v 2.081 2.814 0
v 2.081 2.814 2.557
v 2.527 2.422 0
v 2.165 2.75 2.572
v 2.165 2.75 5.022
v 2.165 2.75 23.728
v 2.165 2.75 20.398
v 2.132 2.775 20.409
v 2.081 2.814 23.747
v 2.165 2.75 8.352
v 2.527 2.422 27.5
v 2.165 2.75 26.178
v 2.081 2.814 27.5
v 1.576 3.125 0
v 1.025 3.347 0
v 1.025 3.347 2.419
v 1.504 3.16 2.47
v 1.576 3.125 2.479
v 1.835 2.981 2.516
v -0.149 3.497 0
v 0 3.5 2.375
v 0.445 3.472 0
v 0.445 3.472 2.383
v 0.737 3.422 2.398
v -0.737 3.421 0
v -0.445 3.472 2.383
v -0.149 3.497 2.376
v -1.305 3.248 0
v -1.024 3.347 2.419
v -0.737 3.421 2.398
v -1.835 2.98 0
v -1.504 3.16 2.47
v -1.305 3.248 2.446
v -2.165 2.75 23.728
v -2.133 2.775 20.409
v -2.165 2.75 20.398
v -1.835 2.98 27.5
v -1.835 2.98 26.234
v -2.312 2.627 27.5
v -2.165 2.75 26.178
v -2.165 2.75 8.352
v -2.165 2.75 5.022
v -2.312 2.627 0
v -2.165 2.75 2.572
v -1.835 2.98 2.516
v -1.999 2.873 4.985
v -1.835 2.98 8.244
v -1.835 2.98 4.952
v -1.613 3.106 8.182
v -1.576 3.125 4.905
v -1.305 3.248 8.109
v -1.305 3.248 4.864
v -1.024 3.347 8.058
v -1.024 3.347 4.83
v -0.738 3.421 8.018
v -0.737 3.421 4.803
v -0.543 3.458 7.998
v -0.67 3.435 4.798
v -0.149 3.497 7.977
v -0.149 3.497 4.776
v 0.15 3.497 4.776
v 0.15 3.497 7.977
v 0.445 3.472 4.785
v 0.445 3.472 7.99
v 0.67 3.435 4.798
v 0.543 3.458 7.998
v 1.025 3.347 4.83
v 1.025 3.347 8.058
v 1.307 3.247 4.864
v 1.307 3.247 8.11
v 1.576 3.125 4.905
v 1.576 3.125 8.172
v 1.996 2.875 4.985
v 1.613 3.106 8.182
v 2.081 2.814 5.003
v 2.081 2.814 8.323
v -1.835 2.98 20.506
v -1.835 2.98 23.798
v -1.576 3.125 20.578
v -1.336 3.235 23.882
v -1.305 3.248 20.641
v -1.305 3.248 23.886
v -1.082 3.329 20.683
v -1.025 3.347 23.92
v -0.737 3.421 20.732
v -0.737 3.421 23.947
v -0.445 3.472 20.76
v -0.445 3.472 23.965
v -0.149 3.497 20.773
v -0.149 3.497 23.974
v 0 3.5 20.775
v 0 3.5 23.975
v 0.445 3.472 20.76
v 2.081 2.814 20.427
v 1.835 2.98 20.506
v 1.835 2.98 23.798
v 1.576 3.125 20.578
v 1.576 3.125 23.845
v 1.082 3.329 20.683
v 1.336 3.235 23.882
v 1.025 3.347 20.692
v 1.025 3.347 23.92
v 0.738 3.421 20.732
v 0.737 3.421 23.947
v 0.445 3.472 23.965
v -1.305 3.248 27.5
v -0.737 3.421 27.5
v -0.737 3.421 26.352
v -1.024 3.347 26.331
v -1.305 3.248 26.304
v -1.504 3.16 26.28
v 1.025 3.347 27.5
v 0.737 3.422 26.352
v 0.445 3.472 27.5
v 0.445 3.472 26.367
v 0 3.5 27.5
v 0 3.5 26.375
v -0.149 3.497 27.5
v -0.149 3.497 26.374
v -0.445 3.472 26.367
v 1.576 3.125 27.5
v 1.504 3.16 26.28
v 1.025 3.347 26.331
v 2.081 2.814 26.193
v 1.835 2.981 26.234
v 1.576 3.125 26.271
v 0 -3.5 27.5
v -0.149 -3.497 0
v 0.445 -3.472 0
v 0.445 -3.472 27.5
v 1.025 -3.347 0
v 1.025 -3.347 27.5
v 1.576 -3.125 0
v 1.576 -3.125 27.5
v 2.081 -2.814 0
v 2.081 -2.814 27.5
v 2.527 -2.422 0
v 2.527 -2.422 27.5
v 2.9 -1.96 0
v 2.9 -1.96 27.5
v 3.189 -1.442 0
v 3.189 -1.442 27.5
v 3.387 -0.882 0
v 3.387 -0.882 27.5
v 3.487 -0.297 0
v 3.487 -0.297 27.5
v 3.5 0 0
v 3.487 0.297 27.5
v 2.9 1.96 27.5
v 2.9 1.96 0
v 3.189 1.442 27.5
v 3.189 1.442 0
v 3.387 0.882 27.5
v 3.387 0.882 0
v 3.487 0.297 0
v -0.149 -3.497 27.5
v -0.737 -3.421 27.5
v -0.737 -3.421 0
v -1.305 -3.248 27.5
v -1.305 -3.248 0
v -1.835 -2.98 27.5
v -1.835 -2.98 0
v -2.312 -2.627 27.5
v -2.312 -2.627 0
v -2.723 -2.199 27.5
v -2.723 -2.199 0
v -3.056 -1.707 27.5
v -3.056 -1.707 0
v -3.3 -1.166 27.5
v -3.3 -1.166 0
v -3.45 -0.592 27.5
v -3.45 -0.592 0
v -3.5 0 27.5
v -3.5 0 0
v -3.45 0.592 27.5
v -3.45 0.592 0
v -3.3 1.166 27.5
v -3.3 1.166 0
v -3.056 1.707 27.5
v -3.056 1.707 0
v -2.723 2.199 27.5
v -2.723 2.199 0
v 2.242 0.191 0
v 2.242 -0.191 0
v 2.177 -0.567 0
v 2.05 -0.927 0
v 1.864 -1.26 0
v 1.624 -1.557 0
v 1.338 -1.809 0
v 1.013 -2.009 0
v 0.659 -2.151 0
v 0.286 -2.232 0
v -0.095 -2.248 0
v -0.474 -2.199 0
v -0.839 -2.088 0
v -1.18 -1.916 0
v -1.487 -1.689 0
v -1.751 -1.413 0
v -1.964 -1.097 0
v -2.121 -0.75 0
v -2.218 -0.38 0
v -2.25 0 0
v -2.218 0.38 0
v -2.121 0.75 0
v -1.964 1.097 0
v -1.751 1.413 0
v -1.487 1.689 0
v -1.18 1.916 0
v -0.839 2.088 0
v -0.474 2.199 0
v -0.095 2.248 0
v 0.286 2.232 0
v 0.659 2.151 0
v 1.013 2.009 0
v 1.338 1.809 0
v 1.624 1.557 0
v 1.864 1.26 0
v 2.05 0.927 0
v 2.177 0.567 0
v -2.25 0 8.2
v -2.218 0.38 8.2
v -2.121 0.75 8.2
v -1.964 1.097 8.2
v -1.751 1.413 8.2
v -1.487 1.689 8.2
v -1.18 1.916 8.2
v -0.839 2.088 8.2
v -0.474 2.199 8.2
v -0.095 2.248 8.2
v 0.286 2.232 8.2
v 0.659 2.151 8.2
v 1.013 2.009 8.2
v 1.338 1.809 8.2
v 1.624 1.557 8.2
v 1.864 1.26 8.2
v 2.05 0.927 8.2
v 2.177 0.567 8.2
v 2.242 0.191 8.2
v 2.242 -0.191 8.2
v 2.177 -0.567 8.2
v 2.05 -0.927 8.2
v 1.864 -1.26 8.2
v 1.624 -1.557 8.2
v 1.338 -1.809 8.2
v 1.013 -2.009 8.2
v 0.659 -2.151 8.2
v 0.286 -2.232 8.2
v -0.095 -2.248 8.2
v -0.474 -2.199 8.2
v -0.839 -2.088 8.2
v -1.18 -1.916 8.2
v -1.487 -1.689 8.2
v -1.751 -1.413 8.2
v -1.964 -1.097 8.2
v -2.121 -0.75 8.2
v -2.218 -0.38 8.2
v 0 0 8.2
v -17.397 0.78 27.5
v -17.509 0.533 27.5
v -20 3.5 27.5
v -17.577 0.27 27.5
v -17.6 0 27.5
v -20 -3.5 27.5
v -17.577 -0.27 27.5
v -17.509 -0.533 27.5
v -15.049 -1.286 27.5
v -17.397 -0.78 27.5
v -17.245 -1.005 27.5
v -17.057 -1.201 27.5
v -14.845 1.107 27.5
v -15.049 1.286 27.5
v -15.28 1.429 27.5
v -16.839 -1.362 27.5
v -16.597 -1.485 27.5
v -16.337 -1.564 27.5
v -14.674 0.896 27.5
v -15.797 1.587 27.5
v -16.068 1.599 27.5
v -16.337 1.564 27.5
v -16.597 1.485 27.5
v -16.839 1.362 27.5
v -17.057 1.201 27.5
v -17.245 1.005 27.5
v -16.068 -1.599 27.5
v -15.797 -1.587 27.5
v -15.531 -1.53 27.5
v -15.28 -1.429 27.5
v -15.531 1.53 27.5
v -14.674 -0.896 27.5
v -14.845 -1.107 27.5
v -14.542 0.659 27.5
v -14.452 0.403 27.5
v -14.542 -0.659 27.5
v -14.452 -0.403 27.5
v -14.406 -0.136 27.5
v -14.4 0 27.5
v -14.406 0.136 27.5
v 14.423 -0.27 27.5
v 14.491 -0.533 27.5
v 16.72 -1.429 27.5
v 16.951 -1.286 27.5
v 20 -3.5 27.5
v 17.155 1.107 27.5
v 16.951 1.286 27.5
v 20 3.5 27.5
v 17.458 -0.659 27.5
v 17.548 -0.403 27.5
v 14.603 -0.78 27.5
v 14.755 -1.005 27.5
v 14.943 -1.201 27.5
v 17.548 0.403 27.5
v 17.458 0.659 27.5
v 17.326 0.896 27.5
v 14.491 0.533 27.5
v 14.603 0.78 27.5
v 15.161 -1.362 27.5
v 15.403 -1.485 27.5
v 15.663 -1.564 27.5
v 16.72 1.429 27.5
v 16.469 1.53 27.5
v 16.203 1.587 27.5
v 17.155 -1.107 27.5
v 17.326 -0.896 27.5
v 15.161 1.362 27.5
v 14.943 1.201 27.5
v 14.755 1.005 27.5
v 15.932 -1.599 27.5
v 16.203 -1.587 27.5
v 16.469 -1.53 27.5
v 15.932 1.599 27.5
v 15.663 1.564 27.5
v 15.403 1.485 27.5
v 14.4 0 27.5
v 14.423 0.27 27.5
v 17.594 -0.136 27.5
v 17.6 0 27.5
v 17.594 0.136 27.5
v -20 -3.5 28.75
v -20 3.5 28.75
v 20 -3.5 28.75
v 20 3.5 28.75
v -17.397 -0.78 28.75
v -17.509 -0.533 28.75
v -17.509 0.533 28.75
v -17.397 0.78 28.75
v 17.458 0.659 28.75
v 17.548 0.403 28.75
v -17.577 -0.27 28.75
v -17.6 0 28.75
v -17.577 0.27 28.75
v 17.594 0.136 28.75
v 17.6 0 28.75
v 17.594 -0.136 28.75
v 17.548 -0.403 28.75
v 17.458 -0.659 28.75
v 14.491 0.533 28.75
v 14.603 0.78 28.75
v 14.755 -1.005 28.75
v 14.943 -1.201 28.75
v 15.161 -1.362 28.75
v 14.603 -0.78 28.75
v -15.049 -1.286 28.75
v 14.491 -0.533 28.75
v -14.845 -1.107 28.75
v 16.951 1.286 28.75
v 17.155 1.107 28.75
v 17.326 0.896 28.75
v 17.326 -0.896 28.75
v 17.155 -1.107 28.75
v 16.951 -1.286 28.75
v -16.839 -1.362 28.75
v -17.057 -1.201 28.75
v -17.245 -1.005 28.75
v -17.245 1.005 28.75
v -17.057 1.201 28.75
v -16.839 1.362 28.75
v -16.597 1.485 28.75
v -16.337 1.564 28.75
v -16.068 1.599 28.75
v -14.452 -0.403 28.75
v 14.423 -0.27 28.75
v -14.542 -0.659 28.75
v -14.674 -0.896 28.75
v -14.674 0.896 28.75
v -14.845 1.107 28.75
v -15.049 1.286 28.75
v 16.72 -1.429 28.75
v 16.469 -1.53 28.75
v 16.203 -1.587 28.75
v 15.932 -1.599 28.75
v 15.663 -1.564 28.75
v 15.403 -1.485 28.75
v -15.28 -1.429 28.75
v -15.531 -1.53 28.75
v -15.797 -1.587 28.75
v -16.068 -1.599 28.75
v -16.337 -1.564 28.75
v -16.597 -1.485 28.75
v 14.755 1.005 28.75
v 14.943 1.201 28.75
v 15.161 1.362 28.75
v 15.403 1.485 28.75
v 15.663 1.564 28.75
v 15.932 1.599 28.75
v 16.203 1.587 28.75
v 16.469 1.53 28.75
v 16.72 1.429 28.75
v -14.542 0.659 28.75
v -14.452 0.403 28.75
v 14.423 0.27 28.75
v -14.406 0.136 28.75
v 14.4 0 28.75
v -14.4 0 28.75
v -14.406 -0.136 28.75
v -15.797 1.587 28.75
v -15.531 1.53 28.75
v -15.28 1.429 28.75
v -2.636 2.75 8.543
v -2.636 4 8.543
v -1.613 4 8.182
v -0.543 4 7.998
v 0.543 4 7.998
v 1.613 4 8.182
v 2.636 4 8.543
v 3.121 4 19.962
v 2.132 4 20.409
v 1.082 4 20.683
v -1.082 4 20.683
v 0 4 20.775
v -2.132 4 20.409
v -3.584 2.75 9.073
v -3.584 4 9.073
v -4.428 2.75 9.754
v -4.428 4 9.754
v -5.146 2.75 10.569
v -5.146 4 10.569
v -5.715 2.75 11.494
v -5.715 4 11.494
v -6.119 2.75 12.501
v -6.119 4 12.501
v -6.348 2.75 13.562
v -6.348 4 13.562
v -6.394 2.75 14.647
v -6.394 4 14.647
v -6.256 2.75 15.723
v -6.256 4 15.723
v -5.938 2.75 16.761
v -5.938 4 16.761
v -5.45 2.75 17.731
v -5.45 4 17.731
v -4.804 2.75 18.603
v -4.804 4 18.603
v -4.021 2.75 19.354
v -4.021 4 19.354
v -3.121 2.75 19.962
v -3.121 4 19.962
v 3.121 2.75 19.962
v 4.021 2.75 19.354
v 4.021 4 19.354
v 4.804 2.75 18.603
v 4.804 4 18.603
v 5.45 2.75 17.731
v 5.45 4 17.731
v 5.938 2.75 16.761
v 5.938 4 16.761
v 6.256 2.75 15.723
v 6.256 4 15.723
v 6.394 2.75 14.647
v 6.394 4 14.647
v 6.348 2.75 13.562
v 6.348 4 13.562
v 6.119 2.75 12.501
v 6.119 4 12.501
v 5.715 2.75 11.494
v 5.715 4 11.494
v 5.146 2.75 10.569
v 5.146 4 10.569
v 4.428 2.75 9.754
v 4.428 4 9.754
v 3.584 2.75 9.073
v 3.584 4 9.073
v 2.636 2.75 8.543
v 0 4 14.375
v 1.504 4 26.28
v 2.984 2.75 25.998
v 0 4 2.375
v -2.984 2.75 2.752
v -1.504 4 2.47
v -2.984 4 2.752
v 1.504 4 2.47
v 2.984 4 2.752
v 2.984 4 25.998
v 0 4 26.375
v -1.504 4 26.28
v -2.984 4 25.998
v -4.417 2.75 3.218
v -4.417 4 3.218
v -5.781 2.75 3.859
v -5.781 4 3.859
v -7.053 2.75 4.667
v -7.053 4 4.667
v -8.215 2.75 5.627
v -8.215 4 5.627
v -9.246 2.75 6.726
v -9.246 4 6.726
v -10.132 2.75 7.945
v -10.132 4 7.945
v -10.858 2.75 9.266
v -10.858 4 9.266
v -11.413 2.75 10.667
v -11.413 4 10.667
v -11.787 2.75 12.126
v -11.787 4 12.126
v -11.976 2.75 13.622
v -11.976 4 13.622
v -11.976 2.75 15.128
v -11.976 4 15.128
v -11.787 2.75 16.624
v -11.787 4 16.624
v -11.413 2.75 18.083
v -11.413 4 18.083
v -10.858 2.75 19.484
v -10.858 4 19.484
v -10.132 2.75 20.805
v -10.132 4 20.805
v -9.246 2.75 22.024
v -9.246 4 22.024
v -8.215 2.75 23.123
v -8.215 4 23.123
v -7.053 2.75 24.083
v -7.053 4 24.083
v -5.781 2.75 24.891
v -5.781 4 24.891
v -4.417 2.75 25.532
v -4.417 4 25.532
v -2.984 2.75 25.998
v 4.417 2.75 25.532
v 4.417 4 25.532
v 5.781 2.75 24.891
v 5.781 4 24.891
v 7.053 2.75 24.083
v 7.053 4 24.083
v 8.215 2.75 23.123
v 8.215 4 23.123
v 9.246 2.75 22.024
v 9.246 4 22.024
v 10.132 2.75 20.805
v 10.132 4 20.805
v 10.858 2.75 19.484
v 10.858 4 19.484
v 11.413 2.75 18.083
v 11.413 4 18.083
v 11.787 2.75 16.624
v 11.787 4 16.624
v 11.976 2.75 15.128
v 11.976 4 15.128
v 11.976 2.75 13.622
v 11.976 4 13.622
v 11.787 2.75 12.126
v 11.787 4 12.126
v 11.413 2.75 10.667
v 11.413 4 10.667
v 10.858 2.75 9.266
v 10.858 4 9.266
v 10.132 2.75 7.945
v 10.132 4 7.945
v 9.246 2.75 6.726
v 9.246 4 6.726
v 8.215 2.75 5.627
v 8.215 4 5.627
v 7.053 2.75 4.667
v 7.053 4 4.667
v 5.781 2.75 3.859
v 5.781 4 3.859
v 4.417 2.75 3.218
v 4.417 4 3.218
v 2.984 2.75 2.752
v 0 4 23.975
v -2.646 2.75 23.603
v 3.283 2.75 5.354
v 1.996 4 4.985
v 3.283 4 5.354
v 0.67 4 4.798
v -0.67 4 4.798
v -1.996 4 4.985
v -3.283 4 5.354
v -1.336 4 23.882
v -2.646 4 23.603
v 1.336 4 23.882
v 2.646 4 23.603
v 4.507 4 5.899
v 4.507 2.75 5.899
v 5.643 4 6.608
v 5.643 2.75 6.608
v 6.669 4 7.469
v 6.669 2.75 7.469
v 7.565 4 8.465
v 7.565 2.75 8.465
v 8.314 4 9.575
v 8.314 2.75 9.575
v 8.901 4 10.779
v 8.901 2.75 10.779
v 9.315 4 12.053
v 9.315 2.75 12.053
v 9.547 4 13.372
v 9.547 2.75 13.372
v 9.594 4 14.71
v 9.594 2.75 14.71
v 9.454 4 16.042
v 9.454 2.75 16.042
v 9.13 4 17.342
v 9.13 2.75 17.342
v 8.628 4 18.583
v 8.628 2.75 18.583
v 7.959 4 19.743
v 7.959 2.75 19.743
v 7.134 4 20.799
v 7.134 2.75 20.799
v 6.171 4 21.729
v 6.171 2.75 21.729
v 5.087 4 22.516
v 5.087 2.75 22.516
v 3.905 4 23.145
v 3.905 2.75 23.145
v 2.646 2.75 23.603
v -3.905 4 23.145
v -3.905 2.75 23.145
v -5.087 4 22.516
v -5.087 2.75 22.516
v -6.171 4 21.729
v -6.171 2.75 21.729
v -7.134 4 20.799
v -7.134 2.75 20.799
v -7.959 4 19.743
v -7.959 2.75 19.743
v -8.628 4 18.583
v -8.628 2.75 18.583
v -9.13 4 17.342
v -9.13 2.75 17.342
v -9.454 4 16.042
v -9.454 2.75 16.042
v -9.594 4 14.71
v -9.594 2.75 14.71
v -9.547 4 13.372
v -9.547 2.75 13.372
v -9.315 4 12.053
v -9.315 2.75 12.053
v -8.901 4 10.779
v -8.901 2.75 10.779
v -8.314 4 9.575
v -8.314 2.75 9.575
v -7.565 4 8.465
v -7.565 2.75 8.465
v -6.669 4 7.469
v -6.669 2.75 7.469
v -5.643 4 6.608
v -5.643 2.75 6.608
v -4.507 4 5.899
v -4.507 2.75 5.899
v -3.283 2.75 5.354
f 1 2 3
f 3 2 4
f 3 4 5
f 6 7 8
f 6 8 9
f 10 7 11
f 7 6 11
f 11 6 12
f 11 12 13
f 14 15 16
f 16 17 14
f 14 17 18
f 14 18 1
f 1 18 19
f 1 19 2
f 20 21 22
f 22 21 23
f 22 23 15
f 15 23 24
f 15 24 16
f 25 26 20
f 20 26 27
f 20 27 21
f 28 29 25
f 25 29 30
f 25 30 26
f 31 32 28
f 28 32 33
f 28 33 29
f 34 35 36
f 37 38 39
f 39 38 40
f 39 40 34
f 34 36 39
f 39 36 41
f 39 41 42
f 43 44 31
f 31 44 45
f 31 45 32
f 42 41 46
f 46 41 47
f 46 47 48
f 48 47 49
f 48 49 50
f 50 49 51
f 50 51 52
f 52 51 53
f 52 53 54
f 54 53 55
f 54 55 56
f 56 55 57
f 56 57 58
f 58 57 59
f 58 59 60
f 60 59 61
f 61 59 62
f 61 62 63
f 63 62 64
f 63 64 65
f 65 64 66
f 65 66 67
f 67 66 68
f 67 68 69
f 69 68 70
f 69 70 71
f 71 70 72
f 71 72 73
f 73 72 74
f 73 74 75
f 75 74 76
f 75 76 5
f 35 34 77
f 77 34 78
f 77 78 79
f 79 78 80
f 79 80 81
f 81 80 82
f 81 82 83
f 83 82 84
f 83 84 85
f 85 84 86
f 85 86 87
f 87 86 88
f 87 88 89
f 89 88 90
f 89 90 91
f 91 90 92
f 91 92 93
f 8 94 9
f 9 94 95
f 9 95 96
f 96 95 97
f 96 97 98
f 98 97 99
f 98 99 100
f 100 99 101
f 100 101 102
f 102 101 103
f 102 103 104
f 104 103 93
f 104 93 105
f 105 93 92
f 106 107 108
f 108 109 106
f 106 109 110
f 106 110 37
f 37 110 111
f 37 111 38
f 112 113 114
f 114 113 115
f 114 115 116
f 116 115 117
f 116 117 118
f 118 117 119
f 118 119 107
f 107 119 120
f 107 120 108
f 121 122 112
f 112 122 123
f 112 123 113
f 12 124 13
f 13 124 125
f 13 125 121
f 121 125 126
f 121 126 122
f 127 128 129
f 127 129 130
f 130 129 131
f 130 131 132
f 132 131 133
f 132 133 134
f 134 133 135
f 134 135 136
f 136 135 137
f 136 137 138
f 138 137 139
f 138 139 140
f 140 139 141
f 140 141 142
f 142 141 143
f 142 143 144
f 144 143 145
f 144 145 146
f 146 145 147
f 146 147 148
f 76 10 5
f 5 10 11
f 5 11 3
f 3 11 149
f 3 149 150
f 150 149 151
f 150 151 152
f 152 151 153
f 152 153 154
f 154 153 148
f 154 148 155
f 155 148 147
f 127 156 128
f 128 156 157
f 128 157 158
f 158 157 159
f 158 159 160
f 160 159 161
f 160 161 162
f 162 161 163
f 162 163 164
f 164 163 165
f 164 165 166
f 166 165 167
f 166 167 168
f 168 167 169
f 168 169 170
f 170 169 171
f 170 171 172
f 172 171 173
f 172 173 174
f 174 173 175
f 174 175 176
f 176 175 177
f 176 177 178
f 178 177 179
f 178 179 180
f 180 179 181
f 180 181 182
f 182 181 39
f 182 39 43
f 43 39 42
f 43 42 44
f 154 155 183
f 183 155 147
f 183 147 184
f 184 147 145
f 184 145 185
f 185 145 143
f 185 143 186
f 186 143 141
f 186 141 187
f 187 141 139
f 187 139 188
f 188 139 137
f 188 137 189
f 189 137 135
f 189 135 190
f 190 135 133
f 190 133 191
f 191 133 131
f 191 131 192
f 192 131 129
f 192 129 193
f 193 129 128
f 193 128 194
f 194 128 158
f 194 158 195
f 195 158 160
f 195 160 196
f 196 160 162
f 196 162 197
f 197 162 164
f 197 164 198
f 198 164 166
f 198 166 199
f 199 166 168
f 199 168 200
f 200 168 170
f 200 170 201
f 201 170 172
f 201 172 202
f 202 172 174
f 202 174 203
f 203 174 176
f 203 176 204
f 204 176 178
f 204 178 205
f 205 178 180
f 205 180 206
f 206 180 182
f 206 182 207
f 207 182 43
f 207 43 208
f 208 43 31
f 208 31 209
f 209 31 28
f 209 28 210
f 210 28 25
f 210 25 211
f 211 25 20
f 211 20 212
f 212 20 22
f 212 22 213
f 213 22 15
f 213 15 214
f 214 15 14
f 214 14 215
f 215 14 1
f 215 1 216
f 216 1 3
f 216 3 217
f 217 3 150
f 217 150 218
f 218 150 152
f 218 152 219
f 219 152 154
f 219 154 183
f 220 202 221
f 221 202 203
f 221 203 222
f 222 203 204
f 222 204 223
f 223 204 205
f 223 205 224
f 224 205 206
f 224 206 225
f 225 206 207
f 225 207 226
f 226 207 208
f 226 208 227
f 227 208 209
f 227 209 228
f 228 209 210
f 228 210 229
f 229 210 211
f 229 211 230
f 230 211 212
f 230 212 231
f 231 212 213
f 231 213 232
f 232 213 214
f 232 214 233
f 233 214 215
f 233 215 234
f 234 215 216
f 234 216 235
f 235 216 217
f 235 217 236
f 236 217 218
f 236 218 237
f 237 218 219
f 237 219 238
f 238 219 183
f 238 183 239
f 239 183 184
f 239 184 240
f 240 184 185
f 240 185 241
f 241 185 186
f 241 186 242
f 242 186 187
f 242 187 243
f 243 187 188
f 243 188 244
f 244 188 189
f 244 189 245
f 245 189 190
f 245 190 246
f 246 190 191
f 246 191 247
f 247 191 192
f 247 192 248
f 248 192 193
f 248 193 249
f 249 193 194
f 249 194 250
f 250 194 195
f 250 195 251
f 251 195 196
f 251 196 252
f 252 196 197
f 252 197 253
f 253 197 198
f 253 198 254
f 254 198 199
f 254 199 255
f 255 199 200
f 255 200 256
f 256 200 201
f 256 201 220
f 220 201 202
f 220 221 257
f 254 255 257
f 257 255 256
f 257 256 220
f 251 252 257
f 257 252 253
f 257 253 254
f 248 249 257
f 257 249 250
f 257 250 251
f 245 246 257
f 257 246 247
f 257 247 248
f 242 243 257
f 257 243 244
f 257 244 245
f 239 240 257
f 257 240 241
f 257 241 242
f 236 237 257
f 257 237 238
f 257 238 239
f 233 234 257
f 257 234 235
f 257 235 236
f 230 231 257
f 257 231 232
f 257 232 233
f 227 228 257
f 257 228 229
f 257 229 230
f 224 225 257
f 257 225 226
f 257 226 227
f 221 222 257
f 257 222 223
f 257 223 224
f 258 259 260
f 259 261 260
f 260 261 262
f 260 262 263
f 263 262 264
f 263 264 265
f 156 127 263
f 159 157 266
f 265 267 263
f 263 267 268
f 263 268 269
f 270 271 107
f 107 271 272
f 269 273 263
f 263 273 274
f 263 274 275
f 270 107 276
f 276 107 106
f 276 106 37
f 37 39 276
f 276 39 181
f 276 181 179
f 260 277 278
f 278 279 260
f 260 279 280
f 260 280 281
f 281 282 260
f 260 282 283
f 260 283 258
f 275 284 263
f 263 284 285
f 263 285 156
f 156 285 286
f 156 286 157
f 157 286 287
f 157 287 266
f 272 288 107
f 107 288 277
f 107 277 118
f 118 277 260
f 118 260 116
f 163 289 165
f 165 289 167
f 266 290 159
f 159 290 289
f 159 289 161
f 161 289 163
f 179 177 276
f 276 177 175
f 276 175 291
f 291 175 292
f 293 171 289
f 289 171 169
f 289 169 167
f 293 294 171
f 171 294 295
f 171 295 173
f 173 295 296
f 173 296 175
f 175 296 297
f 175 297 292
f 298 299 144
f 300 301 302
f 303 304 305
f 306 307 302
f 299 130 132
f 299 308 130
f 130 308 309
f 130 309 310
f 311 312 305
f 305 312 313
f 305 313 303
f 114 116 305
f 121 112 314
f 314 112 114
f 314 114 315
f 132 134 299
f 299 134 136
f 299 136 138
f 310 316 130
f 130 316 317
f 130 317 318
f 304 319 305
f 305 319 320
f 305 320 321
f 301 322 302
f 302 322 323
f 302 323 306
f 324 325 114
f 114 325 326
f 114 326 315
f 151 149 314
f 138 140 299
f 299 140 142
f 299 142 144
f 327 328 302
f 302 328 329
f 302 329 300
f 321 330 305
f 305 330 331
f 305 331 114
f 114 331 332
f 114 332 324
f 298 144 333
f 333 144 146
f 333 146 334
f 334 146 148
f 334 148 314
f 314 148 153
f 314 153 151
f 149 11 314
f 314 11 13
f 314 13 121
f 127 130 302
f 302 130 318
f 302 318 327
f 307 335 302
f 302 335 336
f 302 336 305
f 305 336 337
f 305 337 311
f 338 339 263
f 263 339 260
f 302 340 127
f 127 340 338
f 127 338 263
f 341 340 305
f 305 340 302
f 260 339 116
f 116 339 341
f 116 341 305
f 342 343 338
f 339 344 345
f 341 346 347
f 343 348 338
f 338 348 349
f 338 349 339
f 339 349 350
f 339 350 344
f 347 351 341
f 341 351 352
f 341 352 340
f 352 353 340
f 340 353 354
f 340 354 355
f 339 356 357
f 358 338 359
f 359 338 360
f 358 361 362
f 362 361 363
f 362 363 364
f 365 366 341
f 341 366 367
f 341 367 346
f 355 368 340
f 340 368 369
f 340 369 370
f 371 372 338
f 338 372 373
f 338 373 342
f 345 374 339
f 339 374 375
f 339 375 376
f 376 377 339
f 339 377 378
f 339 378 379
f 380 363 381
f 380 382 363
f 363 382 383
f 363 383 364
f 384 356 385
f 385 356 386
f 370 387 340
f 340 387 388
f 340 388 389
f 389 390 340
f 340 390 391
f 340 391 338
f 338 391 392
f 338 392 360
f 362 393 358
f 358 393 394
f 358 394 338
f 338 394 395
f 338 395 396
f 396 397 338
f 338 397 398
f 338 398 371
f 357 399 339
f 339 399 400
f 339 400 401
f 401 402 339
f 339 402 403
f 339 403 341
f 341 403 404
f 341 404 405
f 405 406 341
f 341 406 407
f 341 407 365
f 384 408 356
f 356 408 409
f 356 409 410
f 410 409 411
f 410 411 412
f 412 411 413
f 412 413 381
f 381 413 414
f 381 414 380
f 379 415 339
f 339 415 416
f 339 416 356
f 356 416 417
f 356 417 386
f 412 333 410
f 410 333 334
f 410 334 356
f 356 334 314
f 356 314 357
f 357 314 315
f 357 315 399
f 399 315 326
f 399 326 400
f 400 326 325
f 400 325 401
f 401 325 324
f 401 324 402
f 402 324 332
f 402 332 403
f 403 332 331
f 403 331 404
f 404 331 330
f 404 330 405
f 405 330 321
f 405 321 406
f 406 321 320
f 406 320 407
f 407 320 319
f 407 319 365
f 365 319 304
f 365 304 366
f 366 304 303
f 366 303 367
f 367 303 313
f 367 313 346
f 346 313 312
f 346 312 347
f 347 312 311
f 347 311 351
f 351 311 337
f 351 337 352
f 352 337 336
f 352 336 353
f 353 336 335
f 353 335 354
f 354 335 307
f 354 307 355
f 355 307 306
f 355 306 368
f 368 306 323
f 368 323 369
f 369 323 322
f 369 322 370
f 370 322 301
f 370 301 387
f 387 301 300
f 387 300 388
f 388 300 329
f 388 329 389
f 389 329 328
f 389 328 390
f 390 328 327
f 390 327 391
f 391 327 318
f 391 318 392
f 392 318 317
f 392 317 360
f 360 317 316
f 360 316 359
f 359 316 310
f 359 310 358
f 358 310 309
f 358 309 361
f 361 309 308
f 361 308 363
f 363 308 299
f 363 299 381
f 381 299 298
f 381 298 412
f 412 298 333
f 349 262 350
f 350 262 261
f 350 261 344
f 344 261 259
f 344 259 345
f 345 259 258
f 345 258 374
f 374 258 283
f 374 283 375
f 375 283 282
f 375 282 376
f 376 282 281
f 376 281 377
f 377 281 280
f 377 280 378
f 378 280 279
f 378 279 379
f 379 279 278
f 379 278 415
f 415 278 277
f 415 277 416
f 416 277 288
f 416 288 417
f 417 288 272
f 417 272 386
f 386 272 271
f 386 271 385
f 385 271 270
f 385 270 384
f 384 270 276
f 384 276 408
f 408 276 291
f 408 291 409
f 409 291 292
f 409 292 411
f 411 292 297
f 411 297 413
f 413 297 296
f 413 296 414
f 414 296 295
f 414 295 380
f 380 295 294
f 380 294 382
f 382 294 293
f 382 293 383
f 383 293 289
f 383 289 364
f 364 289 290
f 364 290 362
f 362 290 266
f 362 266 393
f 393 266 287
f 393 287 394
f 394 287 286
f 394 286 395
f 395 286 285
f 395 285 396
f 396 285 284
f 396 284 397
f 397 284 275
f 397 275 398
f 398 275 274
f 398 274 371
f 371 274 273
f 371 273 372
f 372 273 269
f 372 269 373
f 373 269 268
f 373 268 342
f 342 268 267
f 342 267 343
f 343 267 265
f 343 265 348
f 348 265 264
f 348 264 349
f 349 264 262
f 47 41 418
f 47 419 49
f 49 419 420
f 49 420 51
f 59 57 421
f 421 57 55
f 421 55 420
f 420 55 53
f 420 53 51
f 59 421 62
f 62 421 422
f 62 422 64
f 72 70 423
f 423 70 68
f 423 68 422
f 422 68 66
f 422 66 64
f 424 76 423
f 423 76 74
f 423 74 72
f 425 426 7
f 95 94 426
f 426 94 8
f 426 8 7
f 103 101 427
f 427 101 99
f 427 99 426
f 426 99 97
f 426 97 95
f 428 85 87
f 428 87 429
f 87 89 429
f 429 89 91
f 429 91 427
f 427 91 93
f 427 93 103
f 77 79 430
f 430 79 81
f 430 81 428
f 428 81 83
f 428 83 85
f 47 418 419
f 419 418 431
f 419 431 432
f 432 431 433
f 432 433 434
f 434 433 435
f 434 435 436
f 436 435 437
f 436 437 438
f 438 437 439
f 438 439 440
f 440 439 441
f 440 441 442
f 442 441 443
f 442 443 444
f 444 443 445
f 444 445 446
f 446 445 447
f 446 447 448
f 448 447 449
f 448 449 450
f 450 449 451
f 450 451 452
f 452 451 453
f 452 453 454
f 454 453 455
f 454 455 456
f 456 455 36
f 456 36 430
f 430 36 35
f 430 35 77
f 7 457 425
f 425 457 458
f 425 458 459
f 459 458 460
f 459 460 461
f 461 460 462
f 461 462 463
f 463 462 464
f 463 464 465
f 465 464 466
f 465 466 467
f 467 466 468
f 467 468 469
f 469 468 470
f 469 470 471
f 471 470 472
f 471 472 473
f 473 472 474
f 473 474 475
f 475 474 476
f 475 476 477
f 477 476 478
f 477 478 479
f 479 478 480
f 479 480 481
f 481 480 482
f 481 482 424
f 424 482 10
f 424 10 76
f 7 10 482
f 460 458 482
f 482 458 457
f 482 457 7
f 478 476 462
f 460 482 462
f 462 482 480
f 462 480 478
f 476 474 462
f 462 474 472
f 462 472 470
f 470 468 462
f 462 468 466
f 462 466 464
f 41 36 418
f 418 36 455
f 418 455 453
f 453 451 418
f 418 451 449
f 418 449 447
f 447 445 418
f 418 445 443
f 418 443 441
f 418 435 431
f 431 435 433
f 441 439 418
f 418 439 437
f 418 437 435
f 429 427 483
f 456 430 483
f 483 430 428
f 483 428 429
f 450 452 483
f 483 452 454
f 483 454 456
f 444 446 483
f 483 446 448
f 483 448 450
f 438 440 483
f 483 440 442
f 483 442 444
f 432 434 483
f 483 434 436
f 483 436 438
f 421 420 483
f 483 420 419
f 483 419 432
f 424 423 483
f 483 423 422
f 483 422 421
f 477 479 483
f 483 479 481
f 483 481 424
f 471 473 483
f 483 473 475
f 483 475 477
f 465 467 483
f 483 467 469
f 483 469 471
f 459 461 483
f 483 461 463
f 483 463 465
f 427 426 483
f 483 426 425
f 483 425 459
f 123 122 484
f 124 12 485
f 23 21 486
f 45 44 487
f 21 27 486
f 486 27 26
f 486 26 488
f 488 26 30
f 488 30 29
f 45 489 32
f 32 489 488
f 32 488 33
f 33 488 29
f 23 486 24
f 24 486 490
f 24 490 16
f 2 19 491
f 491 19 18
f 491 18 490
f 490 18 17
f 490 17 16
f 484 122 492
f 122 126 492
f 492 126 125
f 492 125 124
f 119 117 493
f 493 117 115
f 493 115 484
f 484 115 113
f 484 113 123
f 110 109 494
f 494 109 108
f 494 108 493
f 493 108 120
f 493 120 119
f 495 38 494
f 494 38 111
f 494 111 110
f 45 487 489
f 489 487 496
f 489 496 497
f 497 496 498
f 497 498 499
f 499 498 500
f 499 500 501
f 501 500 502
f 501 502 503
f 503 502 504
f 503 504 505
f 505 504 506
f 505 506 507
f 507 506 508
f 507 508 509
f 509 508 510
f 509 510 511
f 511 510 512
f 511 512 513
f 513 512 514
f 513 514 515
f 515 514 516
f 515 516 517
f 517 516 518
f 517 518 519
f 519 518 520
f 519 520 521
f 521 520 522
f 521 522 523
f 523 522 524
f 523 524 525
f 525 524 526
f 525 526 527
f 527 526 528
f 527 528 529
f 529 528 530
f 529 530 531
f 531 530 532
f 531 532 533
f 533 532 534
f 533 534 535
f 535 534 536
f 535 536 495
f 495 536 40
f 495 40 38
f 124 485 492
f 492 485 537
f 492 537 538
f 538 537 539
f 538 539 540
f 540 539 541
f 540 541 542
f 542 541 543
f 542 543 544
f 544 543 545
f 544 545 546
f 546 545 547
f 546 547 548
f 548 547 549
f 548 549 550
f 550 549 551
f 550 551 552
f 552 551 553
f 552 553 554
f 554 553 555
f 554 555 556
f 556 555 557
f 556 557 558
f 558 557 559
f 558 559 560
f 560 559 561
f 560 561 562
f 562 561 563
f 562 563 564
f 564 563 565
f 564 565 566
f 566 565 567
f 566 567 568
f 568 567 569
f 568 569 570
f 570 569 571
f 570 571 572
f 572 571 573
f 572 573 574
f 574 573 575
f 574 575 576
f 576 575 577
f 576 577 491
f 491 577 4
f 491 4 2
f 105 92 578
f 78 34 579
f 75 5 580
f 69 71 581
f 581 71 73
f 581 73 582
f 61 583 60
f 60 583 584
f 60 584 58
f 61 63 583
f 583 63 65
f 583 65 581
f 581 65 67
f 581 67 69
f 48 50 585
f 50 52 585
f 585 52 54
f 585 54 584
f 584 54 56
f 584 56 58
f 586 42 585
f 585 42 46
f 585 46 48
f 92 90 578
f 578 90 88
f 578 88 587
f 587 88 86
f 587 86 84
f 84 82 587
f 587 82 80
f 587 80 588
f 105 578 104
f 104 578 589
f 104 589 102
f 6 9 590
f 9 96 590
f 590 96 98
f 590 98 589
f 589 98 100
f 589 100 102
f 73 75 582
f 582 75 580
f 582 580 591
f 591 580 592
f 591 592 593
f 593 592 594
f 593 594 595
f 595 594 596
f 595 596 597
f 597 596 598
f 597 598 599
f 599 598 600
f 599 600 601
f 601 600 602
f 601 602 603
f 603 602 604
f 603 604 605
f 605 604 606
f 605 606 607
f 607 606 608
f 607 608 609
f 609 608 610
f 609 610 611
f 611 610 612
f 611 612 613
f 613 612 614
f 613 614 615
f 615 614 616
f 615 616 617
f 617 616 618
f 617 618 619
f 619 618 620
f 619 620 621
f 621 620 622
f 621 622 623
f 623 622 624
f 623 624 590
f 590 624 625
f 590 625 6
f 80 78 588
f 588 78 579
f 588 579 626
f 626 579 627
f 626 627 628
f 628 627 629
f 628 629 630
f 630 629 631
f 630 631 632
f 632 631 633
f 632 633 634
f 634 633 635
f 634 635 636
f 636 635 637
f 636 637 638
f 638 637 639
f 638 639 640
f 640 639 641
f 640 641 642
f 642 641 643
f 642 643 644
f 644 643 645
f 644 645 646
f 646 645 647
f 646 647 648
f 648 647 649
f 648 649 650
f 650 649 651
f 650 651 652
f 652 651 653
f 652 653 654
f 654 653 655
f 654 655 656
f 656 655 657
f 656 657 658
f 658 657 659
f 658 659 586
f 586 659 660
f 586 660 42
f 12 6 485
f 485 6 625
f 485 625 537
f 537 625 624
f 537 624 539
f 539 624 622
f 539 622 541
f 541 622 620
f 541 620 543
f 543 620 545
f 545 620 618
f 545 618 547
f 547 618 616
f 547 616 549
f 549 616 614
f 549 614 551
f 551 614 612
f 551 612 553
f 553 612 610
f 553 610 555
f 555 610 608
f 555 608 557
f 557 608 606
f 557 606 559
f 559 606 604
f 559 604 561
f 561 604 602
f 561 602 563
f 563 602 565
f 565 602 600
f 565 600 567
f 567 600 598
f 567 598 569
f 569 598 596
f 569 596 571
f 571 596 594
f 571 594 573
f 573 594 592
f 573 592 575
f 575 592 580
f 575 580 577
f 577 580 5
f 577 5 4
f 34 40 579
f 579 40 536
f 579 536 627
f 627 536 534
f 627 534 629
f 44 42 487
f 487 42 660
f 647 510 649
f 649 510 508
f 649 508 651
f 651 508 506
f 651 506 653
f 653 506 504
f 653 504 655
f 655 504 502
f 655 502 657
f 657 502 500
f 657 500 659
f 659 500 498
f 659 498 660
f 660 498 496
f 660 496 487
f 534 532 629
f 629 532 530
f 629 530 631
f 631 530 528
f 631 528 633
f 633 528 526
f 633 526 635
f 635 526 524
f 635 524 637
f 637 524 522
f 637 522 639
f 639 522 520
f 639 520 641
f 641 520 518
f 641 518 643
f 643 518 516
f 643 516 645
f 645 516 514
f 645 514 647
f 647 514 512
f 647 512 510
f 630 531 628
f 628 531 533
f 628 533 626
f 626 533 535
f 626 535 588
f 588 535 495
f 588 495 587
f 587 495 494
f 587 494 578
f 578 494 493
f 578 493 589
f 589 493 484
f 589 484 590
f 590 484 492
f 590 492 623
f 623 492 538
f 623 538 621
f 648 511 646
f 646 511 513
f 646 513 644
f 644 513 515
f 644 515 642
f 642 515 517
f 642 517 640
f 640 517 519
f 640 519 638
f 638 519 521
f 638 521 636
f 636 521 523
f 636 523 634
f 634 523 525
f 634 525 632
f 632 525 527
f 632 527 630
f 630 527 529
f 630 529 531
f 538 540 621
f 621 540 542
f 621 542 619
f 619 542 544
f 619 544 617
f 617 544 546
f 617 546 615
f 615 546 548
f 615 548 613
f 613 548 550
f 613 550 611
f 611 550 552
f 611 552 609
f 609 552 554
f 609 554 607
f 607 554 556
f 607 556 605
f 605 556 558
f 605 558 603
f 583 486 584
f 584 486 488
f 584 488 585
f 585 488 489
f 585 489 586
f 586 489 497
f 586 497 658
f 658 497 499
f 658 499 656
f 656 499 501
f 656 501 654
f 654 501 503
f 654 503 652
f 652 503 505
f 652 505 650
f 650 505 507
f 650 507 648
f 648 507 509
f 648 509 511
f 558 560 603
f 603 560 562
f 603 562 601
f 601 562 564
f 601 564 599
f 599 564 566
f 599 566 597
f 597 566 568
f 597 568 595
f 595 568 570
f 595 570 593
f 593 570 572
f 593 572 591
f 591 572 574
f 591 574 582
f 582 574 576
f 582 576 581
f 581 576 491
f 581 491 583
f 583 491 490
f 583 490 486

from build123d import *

# Parameters (mm, degrees)
SKETCH_1_R           = 3.5
EXTRUDE_1_DEPTH      = 27.5
SKETCH_2_R           = 2.25
CUT_EXTRUDE_1_DEPTH  = 8.2
SKETCH_3_W           = 40
SKETCH_3_H           = 7
EXTRUDE_2_DEPTH      = 1.25
SKETCH_3_4_R         = 1.6
CUT_EXTRUDE_3_DEPTH  = 1.5
EXTRUDE_3_DEPTH      = 0.5
EXTRUDE_3_DEPTH_BACK = 0.75
SKETCH_6_R           = 12
SKETCH_6_R_2         = 9.6
SKETCH_6_R_3         = 6.4


with BuildPart() as part:
    # 草图1 → 凸台-拉伸1 (new body)
    with BuildSketch(Plane.XY):
        Circle(SKETCH_1_R)
    extrude(amount=EXTRUDE_1_DEPTH)

    # 草图2 → 切除-拉伸1 (cut)
    with BuildSketch(Plane(origin=(0, 0, 0), x_dir=(-1, 0, 0), z_dir=(0, 0, -1))):
        Circle(SKETCH_2_R)
    extrude(amount=-CUT_EXTRUDE_1_DEPTH, mode=Mode.SUBTRACT)

    # 草图3 → 凸台-拉伸2 (add)
    with BuildSketch(Plane.XY.offset(27.5)):
        Rectangle(SKETCH_3_W, SKETCH_3_H)
    extrude(amount=EXTRUDE_2_DEPTH)

    # 草图3<4> → 切除-拉伸3 (cut)
    with BuildSketch(Plane.XY.offset(27.5)):
        with Locations((-16, 0)):
            Circle(SKETCH_3_4_R)
        with Locations((16, 0)):
            Circle(SKETCH_3_4_R)
    extrude(amount=CUT_EXTRUDE_3_DEPTH, mode=Mode.SUBTRACT)

    # 草图6 → 凸台-拉伸3 (add, two sides: drawn at the far end of the back side and taken through both)
    # profile 1 of 2: a face of its own
    with BuildSketch(Plane(origin=(0, 3.5, 0), x_dir=(1, 0, 0), z_dir=(0, 1, 0)).offset(-EXTRUDE_3_DEPTH_BACK)):
        with Locations((0, -14.375)):
            Circle(SKETCH_6_R)
        with Locations((0, -14.375)):
            Circle(SKETCH_6_R_2, mode=Mode.SUBTRACT)
    # profile 2 of 2: a face of its own
    with BuildSketch(Plane(origin=(0, 3.5, 0), x_dir=(1, 0, 0), z_dir=(0, 1, 0)).offset(-EXTRUDE_3_DEPTH_BACK)):
        with Locations((0, -14.375)):
            Circle(SKETCH_6_R_3)
    extrude(amount=EXTRUDE_3_DEPTH + EXTRUDE_3_DEPTH_BACK)


solid = part.part
